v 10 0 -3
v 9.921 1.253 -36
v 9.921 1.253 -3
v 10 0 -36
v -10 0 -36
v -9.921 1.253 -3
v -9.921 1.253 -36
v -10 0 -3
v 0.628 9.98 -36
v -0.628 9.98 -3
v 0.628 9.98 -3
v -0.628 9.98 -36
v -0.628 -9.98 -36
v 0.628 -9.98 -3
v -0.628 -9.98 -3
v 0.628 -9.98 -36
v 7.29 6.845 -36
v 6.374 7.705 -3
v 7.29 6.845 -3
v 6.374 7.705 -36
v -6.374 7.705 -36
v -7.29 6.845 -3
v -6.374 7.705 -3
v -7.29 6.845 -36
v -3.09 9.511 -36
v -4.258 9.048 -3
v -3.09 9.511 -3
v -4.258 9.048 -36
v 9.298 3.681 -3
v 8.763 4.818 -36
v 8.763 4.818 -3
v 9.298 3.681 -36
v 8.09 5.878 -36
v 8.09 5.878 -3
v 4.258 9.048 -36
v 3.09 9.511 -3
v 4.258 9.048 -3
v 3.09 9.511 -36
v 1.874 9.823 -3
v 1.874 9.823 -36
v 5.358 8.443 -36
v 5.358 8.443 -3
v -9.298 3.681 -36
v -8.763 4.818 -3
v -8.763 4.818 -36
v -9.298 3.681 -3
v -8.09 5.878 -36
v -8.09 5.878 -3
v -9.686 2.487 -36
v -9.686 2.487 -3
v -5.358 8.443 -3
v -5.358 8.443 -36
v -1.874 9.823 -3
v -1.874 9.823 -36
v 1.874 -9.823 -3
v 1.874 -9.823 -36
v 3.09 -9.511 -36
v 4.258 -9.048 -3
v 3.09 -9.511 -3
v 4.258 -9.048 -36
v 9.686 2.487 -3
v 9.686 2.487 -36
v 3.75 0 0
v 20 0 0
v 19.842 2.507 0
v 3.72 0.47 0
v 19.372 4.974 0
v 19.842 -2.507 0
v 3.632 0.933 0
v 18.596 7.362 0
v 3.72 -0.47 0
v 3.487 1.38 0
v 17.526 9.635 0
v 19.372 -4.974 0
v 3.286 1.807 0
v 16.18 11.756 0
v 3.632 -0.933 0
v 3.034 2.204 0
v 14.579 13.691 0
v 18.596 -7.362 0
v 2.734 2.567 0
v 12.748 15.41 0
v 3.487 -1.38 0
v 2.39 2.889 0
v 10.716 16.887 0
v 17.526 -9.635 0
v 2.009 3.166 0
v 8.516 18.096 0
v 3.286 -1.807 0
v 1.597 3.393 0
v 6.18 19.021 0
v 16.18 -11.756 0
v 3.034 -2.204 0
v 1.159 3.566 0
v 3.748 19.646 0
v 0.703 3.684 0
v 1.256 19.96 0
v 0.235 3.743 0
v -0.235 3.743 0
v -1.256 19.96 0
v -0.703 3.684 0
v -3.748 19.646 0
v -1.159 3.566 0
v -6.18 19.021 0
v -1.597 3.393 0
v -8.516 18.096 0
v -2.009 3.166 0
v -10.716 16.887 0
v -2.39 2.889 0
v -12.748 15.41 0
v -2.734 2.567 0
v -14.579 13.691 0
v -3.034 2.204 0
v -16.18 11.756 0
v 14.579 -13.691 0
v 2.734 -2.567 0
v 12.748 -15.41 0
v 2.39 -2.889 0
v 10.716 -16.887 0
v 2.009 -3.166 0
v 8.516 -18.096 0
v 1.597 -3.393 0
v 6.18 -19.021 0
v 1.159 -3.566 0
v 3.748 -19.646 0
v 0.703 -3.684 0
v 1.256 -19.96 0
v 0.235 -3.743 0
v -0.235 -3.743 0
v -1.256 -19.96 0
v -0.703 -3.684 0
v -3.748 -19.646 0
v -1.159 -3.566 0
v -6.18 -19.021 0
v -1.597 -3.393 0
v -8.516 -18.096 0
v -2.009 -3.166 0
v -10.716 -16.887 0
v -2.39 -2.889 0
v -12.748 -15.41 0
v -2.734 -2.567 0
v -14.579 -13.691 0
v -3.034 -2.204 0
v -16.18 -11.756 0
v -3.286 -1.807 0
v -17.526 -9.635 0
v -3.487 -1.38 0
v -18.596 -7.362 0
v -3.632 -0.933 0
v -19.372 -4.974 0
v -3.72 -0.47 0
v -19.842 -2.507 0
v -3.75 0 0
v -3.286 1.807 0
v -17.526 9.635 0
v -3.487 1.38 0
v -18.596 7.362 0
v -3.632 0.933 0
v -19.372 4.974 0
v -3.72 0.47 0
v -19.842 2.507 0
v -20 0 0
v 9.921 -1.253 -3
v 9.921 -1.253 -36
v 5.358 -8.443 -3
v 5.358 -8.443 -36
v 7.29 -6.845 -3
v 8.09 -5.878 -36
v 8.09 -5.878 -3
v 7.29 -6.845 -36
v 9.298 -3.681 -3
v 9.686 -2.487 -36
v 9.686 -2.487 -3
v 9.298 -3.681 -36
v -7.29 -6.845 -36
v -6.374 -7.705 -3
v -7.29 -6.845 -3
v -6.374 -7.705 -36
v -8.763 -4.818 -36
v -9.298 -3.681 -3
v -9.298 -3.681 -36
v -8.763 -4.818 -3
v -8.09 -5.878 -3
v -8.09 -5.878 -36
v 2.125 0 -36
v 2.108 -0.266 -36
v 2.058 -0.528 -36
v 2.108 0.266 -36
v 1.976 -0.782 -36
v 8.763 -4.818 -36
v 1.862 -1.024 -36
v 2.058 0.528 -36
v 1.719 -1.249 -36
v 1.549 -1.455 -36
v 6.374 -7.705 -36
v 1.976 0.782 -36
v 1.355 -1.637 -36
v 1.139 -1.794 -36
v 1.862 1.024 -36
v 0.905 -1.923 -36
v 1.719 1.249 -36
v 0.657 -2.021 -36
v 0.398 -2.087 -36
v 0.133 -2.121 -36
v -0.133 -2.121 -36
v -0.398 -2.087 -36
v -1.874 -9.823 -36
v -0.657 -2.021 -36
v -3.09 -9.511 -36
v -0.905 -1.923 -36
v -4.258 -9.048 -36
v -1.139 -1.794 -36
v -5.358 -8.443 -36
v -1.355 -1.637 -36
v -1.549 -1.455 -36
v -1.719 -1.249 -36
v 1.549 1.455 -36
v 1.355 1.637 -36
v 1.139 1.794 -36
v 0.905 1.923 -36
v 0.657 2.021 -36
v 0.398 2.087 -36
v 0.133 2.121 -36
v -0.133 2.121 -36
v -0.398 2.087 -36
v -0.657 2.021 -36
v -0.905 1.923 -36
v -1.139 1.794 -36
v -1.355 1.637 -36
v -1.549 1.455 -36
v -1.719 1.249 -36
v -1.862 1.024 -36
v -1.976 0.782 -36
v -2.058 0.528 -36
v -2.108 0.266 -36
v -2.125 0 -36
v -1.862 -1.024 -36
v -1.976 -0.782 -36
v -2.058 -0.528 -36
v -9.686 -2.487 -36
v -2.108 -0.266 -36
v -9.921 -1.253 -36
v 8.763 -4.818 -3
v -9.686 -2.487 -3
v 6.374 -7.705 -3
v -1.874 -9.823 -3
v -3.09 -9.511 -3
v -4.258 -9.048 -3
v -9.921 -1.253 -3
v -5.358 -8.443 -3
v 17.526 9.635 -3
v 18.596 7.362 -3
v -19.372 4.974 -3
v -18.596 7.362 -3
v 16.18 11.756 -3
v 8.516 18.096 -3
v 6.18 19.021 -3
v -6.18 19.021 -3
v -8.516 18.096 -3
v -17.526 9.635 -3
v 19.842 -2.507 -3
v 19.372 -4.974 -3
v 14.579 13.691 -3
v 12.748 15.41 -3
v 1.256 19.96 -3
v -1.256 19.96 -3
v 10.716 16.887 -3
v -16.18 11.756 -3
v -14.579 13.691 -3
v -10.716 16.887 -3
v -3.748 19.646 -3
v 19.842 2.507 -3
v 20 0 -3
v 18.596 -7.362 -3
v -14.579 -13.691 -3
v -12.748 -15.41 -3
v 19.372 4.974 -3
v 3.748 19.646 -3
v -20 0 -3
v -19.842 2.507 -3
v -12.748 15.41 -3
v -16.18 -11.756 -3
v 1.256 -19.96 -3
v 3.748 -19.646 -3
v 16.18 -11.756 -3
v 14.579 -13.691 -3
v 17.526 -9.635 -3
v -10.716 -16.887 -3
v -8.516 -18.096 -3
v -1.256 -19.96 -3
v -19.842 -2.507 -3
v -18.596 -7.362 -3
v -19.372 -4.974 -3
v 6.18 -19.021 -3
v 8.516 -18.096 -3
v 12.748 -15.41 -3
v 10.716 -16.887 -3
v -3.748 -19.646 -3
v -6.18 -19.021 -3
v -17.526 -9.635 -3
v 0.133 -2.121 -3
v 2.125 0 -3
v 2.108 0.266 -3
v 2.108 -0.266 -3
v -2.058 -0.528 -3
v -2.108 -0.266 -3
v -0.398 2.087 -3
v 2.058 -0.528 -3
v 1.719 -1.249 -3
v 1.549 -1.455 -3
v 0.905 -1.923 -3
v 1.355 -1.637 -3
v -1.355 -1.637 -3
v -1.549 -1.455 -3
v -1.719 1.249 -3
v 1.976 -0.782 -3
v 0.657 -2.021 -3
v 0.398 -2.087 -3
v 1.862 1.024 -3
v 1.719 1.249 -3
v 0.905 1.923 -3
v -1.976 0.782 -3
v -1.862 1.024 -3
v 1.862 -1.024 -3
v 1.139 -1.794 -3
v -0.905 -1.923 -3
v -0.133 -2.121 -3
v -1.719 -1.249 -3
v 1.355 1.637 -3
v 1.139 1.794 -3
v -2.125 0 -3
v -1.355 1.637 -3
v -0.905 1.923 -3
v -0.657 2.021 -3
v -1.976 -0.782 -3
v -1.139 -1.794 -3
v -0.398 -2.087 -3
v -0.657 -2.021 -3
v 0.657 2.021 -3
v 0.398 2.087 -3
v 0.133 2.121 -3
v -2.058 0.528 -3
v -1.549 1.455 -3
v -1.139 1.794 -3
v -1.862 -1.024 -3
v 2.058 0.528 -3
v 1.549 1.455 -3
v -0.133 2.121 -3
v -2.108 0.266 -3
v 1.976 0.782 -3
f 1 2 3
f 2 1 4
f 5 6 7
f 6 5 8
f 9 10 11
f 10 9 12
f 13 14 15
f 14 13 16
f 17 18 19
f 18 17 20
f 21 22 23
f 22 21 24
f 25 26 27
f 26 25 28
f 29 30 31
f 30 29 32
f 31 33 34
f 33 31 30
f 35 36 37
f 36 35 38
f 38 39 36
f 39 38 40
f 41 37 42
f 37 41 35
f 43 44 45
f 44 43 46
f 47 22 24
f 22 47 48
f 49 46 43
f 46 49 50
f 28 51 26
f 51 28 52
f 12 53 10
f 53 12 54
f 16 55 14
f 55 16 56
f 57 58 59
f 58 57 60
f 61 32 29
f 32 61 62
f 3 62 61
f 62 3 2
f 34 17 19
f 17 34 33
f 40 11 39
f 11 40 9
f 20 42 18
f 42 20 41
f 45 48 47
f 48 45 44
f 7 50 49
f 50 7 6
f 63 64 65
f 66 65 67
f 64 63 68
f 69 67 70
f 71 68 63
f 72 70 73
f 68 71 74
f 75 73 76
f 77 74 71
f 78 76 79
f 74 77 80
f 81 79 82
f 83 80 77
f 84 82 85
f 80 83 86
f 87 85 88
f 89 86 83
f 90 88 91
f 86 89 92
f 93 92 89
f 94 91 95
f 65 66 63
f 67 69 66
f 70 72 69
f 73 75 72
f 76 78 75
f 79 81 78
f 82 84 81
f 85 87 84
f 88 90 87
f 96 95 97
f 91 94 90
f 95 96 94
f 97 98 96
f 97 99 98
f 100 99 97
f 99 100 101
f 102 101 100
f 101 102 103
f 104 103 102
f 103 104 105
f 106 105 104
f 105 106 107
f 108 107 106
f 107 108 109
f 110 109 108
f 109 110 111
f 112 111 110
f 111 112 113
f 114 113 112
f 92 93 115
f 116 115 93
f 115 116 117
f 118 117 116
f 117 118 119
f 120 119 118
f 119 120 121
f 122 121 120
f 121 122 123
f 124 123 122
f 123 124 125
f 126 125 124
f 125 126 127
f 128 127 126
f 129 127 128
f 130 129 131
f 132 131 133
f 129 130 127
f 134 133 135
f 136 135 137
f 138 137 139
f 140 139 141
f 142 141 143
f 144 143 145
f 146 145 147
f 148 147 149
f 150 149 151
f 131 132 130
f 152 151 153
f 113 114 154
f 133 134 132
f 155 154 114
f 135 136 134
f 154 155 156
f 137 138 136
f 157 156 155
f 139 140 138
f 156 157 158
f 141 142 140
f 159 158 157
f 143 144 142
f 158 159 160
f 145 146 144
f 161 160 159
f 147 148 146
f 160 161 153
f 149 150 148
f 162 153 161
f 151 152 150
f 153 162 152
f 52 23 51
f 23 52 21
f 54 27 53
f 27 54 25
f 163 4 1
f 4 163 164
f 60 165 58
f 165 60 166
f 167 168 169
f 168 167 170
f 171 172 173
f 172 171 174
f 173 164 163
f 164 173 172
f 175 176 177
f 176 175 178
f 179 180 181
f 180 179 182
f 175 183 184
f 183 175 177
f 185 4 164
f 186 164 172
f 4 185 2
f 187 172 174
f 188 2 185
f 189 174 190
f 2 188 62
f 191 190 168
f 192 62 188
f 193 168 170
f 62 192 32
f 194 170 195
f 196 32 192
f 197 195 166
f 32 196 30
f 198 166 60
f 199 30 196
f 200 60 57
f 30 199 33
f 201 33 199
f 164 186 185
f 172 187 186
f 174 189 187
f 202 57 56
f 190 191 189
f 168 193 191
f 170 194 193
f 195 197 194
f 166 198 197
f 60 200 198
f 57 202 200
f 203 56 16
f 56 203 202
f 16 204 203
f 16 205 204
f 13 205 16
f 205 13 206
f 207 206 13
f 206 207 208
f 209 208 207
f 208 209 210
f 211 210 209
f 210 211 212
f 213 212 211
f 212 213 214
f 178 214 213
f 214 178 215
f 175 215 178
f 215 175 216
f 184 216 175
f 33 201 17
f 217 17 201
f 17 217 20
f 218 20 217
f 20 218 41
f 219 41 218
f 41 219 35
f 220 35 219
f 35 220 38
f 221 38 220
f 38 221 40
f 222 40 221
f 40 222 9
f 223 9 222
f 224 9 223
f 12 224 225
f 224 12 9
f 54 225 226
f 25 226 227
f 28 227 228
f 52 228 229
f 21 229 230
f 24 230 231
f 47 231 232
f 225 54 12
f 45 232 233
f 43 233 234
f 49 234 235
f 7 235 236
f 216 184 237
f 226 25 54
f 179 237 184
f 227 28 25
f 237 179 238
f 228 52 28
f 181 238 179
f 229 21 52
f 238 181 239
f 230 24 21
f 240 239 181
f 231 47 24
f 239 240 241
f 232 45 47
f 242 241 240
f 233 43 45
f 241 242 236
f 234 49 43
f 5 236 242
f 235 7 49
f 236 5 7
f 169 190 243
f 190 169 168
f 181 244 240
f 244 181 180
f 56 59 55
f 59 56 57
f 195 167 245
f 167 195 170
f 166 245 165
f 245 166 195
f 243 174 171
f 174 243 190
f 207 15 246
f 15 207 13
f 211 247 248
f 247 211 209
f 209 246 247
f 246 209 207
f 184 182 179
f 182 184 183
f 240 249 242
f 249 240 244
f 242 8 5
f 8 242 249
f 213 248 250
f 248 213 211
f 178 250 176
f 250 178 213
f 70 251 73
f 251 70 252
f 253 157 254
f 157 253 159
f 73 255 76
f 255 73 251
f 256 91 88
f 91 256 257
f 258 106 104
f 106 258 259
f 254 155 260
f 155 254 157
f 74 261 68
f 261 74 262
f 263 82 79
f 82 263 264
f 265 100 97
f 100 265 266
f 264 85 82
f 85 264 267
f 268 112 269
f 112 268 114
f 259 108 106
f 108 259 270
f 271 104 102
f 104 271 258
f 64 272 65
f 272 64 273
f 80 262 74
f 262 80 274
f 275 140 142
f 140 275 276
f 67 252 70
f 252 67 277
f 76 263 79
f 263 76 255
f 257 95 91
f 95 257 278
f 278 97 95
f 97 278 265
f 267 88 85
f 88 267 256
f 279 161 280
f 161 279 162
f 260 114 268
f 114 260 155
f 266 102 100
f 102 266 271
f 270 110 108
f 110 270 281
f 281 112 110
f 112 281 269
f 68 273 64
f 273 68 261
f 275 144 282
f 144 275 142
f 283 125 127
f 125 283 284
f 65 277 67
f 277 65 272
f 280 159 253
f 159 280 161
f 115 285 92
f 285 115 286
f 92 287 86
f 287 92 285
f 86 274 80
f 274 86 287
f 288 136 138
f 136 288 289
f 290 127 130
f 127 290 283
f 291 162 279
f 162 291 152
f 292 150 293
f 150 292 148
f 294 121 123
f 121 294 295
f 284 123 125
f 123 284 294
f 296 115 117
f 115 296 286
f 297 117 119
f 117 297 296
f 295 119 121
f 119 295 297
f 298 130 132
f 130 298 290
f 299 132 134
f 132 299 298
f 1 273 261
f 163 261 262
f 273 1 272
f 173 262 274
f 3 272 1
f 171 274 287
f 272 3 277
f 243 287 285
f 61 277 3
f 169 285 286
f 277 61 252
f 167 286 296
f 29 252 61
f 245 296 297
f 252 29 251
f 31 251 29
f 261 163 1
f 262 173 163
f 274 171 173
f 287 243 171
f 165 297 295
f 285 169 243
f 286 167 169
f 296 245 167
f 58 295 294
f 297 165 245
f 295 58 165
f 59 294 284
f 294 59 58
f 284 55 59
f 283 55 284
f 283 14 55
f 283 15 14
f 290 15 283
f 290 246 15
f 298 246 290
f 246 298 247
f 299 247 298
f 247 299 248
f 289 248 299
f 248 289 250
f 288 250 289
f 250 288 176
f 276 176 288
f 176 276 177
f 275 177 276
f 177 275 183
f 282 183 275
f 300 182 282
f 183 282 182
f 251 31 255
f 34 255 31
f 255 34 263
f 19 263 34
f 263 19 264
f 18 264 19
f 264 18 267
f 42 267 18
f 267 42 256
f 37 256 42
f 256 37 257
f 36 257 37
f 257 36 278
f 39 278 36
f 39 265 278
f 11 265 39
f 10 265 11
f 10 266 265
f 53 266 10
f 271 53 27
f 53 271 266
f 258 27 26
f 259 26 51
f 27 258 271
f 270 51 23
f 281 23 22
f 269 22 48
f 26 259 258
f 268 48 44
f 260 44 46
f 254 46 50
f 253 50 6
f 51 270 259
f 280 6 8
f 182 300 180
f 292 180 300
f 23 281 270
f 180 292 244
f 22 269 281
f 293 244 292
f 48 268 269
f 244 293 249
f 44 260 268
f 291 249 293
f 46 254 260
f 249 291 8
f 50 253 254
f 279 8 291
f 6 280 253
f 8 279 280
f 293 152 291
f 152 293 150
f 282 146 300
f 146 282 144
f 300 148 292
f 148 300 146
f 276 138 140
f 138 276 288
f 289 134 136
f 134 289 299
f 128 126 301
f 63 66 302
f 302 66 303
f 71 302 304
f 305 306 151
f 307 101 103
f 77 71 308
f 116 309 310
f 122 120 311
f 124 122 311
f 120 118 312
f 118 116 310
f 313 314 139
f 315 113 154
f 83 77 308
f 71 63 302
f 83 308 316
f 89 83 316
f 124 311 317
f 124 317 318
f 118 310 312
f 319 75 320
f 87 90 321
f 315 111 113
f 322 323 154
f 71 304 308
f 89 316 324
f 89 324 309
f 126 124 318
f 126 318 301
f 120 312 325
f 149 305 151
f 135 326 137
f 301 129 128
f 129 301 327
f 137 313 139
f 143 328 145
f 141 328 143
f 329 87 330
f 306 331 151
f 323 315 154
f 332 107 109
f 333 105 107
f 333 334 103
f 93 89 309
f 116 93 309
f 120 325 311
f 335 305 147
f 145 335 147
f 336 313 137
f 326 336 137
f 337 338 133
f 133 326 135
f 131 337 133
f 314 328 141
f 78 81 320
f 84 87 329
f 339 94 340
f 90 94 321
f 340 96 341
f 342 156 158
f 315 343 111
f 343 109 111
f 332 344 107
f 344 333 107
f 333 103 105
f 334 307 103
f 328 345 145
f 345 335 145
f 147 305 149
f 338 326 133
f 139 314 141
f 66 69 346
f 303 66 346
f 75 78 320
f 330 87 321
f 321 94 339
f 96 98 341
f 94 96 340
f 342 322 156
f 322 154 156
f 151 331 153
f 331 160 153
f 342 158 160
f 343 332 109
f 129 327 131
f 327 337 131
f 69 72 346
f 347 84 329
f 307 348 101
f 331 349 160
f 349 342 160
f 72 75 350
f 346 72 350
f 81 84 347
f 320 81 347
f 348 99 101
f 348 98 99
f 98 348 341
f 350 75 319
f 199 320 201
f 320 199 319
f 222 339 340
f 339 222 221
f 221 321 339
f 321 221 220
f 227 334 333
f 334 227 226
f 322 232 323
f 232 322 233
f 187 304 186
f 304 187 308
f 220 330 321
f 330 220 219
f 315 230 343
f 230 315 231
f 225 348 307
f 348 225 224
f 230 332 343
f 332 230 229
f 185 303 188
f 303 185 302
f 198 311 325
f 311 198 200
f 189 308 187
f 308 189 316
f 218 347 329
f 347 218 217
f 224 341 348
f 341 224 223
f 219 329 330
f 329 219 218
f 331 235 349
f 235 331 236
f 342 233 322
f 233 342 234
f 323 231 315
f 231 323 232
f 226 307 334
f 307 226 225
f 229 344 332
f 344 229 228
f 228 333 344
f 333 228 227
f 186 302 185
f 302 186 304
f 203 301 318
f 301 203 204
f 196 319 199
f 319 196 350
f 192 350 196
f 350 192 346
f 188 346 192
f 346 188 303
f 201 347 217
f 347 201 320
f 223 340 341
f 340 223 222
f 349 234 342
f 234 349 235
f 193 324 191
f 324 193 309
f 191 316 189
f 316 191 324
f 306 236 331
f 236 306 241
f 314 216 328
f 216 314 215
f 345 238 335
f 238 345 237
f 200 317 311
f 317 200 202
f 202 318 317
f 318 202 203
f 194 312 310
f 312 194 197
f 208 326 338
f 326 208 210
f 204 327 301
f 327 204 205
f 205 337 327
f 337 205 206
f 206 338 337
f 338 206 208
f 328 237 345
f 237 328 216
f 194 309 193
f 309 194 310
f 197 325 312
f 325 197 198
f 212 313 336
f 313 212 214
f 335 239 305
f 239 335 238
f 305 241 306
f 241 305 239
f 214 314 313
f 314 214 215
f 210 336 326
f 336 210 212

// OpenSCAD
$fn = 50;


difference() {
	union() {
		translate(v = [0, 0, -36.0000000000]) {
			cylinder(h = 36, r = 10.0000000000);
		}
		translate(v = [0, 0, -3.0000000000]) {
			cylinder(h = 3, r = 20.0000000000);
		}
	}
	union() {
		translate(v = [0, 0, 0]) {
			rotate(a = [0, 0, 0]) {
				difference() {
					union() {
						#translate(v = [0, 0, -36.0000000000]) {
							cylinder(h = 36, r = 2.0000000000);
						}
						#translate(v = [0, 0, -3]) {
							cylinder(h = 3, r = 10.0000000000, r1 = 2.1250000000, r2 = 3.7500000000);
						}
						#translate(v = [0, 0, -36.0000000000]) {
							cylinder(h = 36, r = 2.1250000000);
						}
						#translate(v = [0, 0, -36.0000000000]) {
							cylinder(h = 36, r = 2.0000000000);
						}
					}
					union();
				}
			}
		}
	}
}
